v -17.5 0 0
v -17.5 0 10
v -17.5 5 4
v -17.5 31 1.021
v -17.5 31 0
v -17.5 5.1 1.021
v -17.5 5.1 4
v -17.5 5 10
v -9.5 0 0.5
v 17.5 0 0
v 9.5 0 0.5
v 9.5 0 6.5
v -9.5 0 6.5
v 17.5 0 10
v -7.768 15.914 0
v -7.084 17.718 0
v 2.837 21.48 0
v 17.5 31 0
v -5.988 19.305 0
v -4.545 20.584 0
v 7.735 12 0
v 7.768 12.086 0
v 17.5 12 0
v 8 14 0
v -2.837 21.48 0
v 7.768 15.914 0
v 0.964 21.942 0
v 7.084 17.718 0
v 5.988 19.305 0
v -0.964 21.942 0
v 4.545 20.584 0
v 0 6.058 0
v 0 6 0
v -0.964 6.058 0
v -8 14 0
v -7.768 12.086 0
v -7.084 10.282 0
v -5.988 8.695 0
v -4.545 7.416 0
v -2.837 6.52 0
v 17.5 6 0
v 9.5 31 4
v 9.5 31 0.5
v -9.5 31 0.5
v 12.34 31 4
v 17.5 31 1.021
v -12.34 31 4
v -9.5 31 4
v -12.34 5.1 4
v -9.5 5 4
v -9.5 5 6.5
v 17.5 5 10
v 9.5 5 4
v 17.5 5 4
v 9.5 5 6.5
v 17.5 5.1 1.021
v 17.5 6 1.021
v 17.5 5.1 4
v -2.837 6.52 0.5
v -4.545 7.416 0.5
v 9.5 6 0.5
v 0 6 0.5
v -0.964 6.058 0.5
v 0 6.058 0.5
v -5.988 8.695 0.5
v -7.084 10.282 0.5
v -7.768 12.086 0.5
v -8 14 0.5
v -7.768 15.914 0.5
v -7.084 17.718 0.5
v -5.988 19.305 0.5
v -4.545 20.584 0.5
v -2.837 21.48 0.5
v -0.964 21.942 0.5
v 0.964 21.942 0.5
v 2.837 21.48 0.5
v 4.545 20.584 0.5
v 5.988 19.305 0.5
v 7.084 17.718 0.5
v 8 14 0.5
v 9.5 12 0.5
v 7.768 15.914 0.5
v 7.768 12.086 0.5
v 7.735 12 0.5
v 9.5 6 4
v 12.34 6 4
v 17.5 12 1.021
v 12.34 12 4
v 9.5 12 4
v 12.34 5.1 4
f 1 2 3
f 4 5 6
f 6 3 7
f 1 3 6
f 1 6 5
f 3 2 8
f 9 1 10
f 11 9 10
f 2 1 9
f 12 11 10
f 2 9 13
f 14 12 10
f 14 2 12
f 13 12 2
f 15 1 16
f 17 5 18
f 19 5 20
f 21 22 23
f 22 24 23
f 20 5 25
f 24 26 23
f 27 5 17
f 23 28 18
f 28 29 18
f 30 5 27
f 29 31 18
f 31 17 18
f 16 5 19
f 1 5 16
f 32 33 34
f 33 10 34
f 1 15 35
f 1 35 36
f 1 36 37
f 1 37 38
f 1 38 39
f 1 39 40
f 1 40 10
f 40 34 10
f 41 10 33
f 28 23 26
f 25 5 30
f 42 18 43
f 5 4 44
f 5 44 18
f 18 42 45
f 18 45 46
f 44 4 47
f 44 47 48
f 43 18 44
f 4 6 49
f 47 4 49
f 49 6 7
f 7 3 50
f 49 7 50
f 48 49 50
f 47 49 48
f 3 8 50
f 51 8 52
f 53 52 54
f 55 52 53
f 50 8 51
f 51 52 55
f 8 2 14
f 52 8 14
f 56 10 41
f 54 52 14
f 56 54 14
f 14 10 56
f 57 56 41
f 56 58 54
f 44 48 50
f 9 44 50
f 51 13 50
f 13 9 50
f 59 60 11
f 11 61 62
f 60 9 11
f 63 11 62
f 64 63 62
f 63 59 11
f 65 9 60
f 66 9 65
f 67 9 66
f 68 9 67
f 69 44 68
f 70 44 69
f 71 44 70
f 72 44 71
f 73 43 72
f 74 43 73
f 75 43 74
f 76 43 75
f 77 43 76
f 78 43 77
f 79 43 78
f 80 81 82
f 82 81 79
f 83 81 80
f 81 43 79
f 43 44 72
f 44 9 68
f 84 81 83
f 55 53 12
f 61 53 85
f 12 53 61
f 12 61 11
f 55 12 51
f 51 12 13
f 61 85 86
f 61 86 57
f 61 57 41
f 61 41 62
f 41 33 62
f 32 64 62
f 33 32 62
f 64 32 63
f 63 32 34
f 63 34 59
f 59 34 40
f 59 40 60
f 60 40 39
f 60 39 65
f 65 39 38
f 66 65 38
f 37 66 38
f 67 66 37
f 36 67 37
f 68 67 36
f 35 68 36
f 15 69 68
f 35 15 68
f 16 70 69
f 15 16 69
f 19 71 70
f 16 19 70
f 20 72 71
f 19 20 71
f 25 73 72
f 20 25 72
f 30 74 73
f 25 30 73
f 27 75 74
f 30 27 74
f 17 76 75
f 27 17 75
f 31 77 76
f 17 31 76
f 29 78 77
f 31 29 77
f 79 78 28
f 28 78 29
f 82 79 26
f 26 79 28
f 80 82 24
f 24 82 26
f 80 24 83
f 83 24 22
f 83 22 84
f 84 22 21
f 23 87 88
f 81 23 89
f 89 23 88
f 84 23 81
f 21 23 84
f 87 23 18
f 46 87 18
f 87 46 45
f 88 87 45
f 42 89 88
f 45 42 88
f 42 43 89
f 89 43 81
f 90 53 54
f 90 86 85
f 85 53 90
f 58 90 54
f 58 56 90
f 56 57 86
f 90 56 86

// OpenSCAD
difference(){
	union(){
		translate([-35/2,0,0])cube([35,31,4]);
		translate([-35/2,0,0])cube([35,5,10]);
	}		
	translate([-19/2,-2,0.5])cube([19,40,6]);
	translate([21,5.1,-1])rotate([0,-60,0])cube(40);
	mirror([1,0,0])translate([21,5.1,-1])rotate([0,-60,0])cube(40);
	translate([0,14,-1])cylinder(r=8,h=5);
	translate([0,6,-1])cube([30,6,6]);
}
